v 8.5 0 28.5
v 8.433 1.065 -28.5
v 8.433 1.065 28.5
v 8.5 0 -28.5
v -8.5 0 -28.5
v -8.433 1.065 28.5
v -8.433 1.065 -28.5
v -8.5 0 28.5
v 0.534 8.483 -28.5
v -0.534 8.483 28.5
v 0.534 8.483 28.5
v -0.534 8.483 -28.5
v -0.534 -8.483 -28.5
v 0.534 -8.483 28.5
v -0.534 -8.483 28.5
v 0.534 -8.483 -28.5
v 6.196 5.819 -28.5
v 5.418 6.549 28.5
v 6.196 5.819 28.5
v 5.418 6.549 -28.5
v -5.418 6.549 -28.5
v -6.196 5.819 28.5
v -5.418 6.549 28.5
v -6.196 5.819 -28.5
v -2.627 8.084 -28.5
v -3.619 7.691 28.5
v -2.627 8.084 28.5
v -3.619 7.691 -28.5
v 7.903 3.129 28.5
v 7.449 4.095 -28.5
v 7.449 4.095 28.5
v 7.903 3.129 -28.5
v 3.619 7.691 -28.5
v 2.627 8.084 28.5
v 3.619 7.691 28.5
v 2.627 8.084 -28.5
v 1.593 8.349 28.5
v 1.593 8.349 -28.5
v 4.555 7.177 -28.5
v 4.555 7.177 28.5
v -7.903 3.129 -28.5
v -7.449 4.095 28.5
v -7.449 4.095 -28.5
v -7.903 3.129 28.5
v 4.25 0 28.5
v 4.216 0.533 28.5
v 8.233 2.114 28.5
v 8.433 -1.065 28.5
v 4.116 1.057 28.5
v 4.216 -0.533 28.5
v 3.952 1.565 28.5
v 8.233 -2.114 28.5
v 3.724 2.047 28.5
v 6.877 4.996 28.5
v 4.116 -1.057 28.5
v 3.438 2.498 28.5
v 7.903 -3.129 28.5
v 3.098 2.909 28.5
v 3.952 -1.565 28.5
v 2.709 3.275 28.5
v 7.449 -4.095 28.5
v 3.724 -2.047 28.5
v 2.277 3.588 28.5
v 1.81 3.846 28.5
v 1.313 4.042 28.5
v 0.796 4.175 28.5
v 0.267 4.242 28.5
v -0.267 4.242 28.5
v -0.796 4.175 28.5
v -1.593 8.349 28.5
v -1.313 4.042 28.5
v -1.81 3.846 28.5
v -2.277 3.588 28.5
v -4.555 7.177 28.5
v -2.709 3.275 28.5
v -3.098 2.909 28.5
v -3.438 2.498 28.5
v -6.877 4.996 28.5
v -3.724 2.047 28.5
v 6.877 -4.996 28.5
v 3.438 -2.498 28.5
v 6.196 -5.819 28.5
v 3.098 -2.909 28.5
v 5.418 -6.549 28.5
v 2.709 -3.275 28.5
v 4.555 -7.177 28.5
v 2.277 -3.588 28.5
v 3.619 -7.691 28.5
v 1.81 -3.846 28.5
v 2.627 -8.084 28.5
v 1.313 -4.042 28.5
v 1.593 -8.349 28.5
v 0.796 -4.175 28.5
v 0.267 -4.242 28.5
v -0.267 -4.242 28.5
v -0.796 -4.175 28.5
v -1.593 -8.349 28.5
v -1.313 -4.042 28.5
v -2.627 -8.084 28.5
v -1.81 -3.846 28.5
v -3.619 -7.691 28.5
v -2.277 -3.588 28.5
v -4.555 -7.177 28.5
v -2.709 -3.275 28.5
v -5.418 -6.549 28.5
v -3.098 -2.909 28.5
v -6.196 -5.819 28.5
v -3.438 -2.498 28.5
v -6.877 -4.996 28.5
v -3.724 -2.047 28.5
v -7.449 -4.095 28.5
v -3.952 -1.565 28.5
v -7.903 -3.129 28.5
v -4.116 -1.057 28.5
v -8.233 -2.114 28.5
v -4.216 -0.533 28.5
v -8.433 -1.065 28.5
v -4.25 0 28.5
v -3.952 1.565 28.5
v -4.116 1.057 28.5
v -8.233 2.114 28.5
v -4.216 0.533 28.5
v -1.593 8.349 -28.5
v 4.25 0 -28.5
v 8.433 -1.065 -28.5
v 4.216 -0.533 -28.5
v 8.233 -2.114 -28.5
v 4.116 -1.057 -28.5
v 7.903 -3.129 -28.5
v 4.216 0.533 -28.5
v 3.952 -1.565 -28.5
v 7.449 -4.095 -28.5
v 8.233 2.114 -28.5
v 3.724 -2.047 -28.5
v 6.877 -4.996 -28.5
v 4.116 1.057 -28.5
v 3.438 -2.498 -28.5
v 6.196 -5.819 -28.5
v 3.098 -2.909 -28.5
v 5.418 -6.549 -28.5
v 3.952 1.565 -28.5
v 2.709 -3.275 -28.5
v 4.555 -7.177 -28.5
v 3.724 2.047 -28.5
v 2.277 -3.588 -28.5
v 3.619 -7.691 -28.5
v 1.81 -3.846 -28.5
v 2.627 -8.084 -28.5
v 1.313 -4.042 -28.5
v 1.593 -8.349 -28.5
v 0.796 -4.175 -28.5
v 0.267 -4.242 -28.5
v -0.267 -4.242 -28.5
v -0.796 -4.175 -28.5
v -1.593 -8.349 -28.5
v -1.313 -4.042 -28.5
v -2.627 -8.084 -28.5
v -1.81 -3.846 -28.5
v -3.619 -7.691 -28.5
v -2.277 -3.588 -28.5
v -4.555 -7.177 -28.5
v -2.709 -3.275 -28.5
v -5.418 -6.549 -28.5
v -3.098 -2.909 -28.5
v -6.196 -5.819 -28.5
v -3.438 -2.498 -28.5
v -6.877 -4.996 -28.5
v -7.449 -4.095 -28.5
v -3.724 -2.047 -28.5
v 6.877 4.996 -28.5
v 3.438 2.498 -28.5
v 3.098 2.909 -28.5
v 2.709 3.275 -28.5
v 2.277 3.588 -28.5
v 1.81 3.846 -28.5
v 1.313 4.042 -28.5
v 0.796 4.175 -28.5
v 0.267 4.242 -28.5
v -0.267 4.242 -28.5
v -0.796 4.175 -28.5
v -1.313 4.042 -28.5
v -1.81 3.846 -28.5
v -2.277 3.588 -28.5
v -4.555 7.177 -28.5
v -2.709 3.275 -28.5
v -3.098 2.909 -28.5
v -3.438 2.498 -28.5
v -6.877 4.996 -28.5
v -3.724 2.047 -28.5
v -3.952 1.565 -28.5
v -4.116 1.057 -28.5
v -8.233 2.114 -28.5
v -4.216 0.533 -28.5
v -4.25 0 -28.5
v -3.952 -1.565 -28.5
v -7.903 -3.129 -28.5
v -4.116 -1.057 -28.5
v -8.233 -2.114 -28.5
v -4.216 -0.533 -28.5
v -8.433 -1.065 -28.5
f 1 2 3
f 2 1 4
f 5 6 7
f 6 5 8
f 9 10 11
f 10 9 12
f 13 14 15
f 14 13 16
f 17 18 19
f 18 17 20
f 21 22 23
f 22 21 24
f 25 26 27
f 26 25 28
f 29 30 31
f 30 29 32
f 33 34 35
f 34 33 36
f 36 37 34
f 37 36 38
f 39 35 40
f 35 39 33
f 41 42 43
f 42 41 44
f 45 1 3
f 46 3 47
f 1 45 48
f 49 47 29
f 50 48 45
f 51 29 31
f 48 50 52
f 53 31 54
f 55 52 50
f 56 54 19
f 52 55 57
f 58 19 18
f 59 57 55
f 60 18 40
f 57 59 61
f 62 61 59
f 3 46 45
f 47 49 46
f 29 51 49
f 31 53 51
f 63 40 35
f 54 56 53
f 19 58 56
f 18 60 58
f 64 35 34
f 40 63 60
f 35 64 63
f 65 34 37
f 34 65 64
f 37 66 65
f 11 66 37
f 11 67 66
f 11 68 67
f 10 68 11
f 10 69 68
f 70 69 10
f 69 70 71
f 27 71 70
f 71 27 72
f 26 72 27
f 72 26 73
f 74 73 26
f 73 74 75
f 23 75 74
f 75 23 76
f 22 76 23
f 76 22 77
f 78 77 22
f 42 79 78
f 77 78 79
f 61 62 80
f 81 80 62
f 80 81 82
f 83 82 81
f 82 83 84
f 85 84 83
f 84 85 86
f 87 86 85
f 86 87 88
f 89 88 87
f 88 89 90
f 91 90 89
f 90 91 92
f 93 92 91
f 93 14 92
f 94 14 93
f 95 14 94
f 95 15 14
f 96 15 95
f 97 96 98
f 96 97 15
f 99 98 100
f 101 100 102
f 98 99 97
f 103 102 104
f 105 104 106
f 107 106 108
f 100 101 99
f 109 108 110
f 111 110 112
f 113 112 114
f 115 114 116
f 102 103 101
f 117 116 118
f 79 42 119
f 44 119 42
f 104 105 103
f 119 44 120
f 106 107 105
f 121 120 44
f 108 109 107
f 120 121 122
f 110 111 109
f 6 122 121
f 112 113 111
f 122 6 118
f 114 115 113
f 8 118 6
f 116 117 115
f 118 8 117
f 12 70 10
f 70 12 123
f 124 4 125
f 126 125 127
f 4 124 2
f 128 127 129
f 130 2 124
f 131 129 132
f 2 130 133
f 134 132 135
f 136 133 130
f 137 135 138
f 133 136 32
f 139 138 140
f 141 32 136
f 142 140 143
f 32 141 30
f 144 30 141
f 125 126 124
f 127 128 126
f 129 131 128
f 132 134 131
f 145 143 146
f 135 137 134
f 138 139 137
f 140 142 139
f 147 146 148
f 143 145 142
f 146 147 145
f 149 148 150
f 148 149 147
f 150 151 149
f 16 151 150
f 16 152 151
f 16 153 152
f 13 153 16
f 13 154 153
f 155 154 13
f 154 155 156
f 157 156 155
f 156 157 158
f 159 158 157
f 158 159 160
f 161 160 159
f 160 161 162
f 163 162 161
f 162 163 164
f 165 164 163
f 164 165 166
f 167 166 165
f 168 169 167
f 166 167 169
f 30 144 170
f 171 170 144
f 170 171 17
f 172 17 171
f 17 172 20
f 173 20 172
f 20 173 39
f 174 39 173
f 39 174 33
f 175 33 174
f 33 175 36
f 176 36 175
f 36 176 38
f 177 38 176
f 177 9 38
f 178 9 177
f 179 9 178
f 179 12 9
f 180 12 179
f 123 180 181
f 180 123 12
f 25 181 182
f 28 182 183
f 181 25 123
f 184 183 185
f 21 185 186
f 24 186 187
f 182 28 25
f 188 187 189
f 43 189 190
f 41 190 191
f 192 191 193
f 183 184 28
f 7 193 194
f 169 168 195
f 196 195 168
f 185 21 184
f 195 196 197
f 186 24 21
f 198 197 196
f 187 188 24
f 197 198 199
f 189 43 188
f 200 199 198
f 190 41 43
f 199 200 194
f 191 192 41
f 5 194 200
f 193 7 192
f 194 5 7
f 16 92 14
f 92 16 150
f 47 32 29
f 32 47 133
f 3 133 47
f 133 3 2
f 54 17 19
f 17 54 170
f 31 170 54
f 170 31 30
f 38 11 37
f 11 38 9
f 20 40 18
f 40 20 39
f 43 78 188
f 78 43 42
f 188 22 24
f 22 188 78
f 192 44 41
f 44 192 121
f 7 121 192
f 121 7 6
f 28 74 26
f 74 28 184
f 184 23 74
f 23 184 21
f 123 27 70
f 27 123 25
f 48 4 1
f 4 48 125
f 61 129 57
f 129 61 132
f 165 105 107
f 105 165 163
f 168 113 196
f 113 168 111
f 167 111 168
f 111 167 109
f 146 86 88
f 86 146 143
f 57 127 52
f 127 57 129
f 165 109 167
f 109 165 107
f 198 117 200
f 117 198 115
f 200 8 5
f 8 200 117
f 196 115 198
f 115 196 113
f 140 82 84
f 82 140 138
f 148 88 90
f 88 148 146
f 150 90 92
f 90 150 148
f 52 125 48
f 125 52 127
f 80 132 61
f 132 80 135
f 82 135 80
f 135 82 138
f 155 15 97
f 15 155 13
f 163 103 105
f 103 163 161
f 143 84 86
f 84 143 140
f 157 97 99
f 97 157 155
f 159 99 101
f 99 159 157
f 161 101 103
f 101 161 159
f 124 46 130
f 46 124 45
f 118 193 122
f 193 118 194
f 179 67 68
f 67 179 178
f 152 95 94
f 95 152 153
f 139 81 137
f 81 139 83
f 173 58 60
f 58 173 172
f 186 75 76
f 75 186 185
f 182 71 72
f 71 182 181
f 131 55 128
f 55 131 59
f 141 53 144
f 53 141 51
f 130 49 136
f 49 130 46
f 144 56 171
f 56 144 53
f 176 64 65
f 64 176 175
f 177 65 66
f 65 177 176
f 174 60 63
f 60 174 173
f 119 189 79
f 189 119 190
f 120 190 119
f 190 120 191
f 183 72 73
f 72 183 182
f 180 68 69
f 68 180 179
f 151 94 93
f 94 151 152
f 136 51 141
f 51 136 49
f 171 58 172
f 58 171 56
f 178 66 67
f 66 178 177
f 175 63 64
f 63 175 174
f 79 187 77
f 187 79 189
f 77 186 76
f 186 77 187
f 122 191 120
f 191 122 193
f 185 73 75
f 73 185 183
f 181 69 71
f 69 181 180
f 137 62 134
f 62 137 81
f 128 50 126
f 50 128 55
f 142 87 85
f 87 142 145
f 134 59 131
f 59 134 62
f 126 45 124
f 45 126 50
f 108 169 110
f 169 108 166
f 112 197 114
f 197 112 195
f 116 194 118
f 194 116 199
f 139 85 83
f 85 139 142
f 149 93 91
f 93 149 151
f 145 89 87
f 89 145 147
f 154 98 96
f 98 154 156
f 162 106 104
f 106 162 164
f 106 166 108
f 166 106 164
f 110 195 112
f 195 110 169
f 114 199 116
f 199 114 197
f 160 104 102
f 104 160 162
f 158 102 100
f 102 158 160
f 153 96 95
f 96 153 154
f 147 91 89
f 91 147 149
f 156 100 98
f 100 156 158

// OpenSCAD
$fn = 50;


difference() {
	union() {
		translate(v = [0, 0, -28.5000000000]) {
			cylinder(h = 57, r = 8.5000000000);
		}
	}
	union() {
		translate(v = [0, 0, -100.0000000000]) {
			cylinder(h = 200, r = 4.2500000000);
		}
	}
}
